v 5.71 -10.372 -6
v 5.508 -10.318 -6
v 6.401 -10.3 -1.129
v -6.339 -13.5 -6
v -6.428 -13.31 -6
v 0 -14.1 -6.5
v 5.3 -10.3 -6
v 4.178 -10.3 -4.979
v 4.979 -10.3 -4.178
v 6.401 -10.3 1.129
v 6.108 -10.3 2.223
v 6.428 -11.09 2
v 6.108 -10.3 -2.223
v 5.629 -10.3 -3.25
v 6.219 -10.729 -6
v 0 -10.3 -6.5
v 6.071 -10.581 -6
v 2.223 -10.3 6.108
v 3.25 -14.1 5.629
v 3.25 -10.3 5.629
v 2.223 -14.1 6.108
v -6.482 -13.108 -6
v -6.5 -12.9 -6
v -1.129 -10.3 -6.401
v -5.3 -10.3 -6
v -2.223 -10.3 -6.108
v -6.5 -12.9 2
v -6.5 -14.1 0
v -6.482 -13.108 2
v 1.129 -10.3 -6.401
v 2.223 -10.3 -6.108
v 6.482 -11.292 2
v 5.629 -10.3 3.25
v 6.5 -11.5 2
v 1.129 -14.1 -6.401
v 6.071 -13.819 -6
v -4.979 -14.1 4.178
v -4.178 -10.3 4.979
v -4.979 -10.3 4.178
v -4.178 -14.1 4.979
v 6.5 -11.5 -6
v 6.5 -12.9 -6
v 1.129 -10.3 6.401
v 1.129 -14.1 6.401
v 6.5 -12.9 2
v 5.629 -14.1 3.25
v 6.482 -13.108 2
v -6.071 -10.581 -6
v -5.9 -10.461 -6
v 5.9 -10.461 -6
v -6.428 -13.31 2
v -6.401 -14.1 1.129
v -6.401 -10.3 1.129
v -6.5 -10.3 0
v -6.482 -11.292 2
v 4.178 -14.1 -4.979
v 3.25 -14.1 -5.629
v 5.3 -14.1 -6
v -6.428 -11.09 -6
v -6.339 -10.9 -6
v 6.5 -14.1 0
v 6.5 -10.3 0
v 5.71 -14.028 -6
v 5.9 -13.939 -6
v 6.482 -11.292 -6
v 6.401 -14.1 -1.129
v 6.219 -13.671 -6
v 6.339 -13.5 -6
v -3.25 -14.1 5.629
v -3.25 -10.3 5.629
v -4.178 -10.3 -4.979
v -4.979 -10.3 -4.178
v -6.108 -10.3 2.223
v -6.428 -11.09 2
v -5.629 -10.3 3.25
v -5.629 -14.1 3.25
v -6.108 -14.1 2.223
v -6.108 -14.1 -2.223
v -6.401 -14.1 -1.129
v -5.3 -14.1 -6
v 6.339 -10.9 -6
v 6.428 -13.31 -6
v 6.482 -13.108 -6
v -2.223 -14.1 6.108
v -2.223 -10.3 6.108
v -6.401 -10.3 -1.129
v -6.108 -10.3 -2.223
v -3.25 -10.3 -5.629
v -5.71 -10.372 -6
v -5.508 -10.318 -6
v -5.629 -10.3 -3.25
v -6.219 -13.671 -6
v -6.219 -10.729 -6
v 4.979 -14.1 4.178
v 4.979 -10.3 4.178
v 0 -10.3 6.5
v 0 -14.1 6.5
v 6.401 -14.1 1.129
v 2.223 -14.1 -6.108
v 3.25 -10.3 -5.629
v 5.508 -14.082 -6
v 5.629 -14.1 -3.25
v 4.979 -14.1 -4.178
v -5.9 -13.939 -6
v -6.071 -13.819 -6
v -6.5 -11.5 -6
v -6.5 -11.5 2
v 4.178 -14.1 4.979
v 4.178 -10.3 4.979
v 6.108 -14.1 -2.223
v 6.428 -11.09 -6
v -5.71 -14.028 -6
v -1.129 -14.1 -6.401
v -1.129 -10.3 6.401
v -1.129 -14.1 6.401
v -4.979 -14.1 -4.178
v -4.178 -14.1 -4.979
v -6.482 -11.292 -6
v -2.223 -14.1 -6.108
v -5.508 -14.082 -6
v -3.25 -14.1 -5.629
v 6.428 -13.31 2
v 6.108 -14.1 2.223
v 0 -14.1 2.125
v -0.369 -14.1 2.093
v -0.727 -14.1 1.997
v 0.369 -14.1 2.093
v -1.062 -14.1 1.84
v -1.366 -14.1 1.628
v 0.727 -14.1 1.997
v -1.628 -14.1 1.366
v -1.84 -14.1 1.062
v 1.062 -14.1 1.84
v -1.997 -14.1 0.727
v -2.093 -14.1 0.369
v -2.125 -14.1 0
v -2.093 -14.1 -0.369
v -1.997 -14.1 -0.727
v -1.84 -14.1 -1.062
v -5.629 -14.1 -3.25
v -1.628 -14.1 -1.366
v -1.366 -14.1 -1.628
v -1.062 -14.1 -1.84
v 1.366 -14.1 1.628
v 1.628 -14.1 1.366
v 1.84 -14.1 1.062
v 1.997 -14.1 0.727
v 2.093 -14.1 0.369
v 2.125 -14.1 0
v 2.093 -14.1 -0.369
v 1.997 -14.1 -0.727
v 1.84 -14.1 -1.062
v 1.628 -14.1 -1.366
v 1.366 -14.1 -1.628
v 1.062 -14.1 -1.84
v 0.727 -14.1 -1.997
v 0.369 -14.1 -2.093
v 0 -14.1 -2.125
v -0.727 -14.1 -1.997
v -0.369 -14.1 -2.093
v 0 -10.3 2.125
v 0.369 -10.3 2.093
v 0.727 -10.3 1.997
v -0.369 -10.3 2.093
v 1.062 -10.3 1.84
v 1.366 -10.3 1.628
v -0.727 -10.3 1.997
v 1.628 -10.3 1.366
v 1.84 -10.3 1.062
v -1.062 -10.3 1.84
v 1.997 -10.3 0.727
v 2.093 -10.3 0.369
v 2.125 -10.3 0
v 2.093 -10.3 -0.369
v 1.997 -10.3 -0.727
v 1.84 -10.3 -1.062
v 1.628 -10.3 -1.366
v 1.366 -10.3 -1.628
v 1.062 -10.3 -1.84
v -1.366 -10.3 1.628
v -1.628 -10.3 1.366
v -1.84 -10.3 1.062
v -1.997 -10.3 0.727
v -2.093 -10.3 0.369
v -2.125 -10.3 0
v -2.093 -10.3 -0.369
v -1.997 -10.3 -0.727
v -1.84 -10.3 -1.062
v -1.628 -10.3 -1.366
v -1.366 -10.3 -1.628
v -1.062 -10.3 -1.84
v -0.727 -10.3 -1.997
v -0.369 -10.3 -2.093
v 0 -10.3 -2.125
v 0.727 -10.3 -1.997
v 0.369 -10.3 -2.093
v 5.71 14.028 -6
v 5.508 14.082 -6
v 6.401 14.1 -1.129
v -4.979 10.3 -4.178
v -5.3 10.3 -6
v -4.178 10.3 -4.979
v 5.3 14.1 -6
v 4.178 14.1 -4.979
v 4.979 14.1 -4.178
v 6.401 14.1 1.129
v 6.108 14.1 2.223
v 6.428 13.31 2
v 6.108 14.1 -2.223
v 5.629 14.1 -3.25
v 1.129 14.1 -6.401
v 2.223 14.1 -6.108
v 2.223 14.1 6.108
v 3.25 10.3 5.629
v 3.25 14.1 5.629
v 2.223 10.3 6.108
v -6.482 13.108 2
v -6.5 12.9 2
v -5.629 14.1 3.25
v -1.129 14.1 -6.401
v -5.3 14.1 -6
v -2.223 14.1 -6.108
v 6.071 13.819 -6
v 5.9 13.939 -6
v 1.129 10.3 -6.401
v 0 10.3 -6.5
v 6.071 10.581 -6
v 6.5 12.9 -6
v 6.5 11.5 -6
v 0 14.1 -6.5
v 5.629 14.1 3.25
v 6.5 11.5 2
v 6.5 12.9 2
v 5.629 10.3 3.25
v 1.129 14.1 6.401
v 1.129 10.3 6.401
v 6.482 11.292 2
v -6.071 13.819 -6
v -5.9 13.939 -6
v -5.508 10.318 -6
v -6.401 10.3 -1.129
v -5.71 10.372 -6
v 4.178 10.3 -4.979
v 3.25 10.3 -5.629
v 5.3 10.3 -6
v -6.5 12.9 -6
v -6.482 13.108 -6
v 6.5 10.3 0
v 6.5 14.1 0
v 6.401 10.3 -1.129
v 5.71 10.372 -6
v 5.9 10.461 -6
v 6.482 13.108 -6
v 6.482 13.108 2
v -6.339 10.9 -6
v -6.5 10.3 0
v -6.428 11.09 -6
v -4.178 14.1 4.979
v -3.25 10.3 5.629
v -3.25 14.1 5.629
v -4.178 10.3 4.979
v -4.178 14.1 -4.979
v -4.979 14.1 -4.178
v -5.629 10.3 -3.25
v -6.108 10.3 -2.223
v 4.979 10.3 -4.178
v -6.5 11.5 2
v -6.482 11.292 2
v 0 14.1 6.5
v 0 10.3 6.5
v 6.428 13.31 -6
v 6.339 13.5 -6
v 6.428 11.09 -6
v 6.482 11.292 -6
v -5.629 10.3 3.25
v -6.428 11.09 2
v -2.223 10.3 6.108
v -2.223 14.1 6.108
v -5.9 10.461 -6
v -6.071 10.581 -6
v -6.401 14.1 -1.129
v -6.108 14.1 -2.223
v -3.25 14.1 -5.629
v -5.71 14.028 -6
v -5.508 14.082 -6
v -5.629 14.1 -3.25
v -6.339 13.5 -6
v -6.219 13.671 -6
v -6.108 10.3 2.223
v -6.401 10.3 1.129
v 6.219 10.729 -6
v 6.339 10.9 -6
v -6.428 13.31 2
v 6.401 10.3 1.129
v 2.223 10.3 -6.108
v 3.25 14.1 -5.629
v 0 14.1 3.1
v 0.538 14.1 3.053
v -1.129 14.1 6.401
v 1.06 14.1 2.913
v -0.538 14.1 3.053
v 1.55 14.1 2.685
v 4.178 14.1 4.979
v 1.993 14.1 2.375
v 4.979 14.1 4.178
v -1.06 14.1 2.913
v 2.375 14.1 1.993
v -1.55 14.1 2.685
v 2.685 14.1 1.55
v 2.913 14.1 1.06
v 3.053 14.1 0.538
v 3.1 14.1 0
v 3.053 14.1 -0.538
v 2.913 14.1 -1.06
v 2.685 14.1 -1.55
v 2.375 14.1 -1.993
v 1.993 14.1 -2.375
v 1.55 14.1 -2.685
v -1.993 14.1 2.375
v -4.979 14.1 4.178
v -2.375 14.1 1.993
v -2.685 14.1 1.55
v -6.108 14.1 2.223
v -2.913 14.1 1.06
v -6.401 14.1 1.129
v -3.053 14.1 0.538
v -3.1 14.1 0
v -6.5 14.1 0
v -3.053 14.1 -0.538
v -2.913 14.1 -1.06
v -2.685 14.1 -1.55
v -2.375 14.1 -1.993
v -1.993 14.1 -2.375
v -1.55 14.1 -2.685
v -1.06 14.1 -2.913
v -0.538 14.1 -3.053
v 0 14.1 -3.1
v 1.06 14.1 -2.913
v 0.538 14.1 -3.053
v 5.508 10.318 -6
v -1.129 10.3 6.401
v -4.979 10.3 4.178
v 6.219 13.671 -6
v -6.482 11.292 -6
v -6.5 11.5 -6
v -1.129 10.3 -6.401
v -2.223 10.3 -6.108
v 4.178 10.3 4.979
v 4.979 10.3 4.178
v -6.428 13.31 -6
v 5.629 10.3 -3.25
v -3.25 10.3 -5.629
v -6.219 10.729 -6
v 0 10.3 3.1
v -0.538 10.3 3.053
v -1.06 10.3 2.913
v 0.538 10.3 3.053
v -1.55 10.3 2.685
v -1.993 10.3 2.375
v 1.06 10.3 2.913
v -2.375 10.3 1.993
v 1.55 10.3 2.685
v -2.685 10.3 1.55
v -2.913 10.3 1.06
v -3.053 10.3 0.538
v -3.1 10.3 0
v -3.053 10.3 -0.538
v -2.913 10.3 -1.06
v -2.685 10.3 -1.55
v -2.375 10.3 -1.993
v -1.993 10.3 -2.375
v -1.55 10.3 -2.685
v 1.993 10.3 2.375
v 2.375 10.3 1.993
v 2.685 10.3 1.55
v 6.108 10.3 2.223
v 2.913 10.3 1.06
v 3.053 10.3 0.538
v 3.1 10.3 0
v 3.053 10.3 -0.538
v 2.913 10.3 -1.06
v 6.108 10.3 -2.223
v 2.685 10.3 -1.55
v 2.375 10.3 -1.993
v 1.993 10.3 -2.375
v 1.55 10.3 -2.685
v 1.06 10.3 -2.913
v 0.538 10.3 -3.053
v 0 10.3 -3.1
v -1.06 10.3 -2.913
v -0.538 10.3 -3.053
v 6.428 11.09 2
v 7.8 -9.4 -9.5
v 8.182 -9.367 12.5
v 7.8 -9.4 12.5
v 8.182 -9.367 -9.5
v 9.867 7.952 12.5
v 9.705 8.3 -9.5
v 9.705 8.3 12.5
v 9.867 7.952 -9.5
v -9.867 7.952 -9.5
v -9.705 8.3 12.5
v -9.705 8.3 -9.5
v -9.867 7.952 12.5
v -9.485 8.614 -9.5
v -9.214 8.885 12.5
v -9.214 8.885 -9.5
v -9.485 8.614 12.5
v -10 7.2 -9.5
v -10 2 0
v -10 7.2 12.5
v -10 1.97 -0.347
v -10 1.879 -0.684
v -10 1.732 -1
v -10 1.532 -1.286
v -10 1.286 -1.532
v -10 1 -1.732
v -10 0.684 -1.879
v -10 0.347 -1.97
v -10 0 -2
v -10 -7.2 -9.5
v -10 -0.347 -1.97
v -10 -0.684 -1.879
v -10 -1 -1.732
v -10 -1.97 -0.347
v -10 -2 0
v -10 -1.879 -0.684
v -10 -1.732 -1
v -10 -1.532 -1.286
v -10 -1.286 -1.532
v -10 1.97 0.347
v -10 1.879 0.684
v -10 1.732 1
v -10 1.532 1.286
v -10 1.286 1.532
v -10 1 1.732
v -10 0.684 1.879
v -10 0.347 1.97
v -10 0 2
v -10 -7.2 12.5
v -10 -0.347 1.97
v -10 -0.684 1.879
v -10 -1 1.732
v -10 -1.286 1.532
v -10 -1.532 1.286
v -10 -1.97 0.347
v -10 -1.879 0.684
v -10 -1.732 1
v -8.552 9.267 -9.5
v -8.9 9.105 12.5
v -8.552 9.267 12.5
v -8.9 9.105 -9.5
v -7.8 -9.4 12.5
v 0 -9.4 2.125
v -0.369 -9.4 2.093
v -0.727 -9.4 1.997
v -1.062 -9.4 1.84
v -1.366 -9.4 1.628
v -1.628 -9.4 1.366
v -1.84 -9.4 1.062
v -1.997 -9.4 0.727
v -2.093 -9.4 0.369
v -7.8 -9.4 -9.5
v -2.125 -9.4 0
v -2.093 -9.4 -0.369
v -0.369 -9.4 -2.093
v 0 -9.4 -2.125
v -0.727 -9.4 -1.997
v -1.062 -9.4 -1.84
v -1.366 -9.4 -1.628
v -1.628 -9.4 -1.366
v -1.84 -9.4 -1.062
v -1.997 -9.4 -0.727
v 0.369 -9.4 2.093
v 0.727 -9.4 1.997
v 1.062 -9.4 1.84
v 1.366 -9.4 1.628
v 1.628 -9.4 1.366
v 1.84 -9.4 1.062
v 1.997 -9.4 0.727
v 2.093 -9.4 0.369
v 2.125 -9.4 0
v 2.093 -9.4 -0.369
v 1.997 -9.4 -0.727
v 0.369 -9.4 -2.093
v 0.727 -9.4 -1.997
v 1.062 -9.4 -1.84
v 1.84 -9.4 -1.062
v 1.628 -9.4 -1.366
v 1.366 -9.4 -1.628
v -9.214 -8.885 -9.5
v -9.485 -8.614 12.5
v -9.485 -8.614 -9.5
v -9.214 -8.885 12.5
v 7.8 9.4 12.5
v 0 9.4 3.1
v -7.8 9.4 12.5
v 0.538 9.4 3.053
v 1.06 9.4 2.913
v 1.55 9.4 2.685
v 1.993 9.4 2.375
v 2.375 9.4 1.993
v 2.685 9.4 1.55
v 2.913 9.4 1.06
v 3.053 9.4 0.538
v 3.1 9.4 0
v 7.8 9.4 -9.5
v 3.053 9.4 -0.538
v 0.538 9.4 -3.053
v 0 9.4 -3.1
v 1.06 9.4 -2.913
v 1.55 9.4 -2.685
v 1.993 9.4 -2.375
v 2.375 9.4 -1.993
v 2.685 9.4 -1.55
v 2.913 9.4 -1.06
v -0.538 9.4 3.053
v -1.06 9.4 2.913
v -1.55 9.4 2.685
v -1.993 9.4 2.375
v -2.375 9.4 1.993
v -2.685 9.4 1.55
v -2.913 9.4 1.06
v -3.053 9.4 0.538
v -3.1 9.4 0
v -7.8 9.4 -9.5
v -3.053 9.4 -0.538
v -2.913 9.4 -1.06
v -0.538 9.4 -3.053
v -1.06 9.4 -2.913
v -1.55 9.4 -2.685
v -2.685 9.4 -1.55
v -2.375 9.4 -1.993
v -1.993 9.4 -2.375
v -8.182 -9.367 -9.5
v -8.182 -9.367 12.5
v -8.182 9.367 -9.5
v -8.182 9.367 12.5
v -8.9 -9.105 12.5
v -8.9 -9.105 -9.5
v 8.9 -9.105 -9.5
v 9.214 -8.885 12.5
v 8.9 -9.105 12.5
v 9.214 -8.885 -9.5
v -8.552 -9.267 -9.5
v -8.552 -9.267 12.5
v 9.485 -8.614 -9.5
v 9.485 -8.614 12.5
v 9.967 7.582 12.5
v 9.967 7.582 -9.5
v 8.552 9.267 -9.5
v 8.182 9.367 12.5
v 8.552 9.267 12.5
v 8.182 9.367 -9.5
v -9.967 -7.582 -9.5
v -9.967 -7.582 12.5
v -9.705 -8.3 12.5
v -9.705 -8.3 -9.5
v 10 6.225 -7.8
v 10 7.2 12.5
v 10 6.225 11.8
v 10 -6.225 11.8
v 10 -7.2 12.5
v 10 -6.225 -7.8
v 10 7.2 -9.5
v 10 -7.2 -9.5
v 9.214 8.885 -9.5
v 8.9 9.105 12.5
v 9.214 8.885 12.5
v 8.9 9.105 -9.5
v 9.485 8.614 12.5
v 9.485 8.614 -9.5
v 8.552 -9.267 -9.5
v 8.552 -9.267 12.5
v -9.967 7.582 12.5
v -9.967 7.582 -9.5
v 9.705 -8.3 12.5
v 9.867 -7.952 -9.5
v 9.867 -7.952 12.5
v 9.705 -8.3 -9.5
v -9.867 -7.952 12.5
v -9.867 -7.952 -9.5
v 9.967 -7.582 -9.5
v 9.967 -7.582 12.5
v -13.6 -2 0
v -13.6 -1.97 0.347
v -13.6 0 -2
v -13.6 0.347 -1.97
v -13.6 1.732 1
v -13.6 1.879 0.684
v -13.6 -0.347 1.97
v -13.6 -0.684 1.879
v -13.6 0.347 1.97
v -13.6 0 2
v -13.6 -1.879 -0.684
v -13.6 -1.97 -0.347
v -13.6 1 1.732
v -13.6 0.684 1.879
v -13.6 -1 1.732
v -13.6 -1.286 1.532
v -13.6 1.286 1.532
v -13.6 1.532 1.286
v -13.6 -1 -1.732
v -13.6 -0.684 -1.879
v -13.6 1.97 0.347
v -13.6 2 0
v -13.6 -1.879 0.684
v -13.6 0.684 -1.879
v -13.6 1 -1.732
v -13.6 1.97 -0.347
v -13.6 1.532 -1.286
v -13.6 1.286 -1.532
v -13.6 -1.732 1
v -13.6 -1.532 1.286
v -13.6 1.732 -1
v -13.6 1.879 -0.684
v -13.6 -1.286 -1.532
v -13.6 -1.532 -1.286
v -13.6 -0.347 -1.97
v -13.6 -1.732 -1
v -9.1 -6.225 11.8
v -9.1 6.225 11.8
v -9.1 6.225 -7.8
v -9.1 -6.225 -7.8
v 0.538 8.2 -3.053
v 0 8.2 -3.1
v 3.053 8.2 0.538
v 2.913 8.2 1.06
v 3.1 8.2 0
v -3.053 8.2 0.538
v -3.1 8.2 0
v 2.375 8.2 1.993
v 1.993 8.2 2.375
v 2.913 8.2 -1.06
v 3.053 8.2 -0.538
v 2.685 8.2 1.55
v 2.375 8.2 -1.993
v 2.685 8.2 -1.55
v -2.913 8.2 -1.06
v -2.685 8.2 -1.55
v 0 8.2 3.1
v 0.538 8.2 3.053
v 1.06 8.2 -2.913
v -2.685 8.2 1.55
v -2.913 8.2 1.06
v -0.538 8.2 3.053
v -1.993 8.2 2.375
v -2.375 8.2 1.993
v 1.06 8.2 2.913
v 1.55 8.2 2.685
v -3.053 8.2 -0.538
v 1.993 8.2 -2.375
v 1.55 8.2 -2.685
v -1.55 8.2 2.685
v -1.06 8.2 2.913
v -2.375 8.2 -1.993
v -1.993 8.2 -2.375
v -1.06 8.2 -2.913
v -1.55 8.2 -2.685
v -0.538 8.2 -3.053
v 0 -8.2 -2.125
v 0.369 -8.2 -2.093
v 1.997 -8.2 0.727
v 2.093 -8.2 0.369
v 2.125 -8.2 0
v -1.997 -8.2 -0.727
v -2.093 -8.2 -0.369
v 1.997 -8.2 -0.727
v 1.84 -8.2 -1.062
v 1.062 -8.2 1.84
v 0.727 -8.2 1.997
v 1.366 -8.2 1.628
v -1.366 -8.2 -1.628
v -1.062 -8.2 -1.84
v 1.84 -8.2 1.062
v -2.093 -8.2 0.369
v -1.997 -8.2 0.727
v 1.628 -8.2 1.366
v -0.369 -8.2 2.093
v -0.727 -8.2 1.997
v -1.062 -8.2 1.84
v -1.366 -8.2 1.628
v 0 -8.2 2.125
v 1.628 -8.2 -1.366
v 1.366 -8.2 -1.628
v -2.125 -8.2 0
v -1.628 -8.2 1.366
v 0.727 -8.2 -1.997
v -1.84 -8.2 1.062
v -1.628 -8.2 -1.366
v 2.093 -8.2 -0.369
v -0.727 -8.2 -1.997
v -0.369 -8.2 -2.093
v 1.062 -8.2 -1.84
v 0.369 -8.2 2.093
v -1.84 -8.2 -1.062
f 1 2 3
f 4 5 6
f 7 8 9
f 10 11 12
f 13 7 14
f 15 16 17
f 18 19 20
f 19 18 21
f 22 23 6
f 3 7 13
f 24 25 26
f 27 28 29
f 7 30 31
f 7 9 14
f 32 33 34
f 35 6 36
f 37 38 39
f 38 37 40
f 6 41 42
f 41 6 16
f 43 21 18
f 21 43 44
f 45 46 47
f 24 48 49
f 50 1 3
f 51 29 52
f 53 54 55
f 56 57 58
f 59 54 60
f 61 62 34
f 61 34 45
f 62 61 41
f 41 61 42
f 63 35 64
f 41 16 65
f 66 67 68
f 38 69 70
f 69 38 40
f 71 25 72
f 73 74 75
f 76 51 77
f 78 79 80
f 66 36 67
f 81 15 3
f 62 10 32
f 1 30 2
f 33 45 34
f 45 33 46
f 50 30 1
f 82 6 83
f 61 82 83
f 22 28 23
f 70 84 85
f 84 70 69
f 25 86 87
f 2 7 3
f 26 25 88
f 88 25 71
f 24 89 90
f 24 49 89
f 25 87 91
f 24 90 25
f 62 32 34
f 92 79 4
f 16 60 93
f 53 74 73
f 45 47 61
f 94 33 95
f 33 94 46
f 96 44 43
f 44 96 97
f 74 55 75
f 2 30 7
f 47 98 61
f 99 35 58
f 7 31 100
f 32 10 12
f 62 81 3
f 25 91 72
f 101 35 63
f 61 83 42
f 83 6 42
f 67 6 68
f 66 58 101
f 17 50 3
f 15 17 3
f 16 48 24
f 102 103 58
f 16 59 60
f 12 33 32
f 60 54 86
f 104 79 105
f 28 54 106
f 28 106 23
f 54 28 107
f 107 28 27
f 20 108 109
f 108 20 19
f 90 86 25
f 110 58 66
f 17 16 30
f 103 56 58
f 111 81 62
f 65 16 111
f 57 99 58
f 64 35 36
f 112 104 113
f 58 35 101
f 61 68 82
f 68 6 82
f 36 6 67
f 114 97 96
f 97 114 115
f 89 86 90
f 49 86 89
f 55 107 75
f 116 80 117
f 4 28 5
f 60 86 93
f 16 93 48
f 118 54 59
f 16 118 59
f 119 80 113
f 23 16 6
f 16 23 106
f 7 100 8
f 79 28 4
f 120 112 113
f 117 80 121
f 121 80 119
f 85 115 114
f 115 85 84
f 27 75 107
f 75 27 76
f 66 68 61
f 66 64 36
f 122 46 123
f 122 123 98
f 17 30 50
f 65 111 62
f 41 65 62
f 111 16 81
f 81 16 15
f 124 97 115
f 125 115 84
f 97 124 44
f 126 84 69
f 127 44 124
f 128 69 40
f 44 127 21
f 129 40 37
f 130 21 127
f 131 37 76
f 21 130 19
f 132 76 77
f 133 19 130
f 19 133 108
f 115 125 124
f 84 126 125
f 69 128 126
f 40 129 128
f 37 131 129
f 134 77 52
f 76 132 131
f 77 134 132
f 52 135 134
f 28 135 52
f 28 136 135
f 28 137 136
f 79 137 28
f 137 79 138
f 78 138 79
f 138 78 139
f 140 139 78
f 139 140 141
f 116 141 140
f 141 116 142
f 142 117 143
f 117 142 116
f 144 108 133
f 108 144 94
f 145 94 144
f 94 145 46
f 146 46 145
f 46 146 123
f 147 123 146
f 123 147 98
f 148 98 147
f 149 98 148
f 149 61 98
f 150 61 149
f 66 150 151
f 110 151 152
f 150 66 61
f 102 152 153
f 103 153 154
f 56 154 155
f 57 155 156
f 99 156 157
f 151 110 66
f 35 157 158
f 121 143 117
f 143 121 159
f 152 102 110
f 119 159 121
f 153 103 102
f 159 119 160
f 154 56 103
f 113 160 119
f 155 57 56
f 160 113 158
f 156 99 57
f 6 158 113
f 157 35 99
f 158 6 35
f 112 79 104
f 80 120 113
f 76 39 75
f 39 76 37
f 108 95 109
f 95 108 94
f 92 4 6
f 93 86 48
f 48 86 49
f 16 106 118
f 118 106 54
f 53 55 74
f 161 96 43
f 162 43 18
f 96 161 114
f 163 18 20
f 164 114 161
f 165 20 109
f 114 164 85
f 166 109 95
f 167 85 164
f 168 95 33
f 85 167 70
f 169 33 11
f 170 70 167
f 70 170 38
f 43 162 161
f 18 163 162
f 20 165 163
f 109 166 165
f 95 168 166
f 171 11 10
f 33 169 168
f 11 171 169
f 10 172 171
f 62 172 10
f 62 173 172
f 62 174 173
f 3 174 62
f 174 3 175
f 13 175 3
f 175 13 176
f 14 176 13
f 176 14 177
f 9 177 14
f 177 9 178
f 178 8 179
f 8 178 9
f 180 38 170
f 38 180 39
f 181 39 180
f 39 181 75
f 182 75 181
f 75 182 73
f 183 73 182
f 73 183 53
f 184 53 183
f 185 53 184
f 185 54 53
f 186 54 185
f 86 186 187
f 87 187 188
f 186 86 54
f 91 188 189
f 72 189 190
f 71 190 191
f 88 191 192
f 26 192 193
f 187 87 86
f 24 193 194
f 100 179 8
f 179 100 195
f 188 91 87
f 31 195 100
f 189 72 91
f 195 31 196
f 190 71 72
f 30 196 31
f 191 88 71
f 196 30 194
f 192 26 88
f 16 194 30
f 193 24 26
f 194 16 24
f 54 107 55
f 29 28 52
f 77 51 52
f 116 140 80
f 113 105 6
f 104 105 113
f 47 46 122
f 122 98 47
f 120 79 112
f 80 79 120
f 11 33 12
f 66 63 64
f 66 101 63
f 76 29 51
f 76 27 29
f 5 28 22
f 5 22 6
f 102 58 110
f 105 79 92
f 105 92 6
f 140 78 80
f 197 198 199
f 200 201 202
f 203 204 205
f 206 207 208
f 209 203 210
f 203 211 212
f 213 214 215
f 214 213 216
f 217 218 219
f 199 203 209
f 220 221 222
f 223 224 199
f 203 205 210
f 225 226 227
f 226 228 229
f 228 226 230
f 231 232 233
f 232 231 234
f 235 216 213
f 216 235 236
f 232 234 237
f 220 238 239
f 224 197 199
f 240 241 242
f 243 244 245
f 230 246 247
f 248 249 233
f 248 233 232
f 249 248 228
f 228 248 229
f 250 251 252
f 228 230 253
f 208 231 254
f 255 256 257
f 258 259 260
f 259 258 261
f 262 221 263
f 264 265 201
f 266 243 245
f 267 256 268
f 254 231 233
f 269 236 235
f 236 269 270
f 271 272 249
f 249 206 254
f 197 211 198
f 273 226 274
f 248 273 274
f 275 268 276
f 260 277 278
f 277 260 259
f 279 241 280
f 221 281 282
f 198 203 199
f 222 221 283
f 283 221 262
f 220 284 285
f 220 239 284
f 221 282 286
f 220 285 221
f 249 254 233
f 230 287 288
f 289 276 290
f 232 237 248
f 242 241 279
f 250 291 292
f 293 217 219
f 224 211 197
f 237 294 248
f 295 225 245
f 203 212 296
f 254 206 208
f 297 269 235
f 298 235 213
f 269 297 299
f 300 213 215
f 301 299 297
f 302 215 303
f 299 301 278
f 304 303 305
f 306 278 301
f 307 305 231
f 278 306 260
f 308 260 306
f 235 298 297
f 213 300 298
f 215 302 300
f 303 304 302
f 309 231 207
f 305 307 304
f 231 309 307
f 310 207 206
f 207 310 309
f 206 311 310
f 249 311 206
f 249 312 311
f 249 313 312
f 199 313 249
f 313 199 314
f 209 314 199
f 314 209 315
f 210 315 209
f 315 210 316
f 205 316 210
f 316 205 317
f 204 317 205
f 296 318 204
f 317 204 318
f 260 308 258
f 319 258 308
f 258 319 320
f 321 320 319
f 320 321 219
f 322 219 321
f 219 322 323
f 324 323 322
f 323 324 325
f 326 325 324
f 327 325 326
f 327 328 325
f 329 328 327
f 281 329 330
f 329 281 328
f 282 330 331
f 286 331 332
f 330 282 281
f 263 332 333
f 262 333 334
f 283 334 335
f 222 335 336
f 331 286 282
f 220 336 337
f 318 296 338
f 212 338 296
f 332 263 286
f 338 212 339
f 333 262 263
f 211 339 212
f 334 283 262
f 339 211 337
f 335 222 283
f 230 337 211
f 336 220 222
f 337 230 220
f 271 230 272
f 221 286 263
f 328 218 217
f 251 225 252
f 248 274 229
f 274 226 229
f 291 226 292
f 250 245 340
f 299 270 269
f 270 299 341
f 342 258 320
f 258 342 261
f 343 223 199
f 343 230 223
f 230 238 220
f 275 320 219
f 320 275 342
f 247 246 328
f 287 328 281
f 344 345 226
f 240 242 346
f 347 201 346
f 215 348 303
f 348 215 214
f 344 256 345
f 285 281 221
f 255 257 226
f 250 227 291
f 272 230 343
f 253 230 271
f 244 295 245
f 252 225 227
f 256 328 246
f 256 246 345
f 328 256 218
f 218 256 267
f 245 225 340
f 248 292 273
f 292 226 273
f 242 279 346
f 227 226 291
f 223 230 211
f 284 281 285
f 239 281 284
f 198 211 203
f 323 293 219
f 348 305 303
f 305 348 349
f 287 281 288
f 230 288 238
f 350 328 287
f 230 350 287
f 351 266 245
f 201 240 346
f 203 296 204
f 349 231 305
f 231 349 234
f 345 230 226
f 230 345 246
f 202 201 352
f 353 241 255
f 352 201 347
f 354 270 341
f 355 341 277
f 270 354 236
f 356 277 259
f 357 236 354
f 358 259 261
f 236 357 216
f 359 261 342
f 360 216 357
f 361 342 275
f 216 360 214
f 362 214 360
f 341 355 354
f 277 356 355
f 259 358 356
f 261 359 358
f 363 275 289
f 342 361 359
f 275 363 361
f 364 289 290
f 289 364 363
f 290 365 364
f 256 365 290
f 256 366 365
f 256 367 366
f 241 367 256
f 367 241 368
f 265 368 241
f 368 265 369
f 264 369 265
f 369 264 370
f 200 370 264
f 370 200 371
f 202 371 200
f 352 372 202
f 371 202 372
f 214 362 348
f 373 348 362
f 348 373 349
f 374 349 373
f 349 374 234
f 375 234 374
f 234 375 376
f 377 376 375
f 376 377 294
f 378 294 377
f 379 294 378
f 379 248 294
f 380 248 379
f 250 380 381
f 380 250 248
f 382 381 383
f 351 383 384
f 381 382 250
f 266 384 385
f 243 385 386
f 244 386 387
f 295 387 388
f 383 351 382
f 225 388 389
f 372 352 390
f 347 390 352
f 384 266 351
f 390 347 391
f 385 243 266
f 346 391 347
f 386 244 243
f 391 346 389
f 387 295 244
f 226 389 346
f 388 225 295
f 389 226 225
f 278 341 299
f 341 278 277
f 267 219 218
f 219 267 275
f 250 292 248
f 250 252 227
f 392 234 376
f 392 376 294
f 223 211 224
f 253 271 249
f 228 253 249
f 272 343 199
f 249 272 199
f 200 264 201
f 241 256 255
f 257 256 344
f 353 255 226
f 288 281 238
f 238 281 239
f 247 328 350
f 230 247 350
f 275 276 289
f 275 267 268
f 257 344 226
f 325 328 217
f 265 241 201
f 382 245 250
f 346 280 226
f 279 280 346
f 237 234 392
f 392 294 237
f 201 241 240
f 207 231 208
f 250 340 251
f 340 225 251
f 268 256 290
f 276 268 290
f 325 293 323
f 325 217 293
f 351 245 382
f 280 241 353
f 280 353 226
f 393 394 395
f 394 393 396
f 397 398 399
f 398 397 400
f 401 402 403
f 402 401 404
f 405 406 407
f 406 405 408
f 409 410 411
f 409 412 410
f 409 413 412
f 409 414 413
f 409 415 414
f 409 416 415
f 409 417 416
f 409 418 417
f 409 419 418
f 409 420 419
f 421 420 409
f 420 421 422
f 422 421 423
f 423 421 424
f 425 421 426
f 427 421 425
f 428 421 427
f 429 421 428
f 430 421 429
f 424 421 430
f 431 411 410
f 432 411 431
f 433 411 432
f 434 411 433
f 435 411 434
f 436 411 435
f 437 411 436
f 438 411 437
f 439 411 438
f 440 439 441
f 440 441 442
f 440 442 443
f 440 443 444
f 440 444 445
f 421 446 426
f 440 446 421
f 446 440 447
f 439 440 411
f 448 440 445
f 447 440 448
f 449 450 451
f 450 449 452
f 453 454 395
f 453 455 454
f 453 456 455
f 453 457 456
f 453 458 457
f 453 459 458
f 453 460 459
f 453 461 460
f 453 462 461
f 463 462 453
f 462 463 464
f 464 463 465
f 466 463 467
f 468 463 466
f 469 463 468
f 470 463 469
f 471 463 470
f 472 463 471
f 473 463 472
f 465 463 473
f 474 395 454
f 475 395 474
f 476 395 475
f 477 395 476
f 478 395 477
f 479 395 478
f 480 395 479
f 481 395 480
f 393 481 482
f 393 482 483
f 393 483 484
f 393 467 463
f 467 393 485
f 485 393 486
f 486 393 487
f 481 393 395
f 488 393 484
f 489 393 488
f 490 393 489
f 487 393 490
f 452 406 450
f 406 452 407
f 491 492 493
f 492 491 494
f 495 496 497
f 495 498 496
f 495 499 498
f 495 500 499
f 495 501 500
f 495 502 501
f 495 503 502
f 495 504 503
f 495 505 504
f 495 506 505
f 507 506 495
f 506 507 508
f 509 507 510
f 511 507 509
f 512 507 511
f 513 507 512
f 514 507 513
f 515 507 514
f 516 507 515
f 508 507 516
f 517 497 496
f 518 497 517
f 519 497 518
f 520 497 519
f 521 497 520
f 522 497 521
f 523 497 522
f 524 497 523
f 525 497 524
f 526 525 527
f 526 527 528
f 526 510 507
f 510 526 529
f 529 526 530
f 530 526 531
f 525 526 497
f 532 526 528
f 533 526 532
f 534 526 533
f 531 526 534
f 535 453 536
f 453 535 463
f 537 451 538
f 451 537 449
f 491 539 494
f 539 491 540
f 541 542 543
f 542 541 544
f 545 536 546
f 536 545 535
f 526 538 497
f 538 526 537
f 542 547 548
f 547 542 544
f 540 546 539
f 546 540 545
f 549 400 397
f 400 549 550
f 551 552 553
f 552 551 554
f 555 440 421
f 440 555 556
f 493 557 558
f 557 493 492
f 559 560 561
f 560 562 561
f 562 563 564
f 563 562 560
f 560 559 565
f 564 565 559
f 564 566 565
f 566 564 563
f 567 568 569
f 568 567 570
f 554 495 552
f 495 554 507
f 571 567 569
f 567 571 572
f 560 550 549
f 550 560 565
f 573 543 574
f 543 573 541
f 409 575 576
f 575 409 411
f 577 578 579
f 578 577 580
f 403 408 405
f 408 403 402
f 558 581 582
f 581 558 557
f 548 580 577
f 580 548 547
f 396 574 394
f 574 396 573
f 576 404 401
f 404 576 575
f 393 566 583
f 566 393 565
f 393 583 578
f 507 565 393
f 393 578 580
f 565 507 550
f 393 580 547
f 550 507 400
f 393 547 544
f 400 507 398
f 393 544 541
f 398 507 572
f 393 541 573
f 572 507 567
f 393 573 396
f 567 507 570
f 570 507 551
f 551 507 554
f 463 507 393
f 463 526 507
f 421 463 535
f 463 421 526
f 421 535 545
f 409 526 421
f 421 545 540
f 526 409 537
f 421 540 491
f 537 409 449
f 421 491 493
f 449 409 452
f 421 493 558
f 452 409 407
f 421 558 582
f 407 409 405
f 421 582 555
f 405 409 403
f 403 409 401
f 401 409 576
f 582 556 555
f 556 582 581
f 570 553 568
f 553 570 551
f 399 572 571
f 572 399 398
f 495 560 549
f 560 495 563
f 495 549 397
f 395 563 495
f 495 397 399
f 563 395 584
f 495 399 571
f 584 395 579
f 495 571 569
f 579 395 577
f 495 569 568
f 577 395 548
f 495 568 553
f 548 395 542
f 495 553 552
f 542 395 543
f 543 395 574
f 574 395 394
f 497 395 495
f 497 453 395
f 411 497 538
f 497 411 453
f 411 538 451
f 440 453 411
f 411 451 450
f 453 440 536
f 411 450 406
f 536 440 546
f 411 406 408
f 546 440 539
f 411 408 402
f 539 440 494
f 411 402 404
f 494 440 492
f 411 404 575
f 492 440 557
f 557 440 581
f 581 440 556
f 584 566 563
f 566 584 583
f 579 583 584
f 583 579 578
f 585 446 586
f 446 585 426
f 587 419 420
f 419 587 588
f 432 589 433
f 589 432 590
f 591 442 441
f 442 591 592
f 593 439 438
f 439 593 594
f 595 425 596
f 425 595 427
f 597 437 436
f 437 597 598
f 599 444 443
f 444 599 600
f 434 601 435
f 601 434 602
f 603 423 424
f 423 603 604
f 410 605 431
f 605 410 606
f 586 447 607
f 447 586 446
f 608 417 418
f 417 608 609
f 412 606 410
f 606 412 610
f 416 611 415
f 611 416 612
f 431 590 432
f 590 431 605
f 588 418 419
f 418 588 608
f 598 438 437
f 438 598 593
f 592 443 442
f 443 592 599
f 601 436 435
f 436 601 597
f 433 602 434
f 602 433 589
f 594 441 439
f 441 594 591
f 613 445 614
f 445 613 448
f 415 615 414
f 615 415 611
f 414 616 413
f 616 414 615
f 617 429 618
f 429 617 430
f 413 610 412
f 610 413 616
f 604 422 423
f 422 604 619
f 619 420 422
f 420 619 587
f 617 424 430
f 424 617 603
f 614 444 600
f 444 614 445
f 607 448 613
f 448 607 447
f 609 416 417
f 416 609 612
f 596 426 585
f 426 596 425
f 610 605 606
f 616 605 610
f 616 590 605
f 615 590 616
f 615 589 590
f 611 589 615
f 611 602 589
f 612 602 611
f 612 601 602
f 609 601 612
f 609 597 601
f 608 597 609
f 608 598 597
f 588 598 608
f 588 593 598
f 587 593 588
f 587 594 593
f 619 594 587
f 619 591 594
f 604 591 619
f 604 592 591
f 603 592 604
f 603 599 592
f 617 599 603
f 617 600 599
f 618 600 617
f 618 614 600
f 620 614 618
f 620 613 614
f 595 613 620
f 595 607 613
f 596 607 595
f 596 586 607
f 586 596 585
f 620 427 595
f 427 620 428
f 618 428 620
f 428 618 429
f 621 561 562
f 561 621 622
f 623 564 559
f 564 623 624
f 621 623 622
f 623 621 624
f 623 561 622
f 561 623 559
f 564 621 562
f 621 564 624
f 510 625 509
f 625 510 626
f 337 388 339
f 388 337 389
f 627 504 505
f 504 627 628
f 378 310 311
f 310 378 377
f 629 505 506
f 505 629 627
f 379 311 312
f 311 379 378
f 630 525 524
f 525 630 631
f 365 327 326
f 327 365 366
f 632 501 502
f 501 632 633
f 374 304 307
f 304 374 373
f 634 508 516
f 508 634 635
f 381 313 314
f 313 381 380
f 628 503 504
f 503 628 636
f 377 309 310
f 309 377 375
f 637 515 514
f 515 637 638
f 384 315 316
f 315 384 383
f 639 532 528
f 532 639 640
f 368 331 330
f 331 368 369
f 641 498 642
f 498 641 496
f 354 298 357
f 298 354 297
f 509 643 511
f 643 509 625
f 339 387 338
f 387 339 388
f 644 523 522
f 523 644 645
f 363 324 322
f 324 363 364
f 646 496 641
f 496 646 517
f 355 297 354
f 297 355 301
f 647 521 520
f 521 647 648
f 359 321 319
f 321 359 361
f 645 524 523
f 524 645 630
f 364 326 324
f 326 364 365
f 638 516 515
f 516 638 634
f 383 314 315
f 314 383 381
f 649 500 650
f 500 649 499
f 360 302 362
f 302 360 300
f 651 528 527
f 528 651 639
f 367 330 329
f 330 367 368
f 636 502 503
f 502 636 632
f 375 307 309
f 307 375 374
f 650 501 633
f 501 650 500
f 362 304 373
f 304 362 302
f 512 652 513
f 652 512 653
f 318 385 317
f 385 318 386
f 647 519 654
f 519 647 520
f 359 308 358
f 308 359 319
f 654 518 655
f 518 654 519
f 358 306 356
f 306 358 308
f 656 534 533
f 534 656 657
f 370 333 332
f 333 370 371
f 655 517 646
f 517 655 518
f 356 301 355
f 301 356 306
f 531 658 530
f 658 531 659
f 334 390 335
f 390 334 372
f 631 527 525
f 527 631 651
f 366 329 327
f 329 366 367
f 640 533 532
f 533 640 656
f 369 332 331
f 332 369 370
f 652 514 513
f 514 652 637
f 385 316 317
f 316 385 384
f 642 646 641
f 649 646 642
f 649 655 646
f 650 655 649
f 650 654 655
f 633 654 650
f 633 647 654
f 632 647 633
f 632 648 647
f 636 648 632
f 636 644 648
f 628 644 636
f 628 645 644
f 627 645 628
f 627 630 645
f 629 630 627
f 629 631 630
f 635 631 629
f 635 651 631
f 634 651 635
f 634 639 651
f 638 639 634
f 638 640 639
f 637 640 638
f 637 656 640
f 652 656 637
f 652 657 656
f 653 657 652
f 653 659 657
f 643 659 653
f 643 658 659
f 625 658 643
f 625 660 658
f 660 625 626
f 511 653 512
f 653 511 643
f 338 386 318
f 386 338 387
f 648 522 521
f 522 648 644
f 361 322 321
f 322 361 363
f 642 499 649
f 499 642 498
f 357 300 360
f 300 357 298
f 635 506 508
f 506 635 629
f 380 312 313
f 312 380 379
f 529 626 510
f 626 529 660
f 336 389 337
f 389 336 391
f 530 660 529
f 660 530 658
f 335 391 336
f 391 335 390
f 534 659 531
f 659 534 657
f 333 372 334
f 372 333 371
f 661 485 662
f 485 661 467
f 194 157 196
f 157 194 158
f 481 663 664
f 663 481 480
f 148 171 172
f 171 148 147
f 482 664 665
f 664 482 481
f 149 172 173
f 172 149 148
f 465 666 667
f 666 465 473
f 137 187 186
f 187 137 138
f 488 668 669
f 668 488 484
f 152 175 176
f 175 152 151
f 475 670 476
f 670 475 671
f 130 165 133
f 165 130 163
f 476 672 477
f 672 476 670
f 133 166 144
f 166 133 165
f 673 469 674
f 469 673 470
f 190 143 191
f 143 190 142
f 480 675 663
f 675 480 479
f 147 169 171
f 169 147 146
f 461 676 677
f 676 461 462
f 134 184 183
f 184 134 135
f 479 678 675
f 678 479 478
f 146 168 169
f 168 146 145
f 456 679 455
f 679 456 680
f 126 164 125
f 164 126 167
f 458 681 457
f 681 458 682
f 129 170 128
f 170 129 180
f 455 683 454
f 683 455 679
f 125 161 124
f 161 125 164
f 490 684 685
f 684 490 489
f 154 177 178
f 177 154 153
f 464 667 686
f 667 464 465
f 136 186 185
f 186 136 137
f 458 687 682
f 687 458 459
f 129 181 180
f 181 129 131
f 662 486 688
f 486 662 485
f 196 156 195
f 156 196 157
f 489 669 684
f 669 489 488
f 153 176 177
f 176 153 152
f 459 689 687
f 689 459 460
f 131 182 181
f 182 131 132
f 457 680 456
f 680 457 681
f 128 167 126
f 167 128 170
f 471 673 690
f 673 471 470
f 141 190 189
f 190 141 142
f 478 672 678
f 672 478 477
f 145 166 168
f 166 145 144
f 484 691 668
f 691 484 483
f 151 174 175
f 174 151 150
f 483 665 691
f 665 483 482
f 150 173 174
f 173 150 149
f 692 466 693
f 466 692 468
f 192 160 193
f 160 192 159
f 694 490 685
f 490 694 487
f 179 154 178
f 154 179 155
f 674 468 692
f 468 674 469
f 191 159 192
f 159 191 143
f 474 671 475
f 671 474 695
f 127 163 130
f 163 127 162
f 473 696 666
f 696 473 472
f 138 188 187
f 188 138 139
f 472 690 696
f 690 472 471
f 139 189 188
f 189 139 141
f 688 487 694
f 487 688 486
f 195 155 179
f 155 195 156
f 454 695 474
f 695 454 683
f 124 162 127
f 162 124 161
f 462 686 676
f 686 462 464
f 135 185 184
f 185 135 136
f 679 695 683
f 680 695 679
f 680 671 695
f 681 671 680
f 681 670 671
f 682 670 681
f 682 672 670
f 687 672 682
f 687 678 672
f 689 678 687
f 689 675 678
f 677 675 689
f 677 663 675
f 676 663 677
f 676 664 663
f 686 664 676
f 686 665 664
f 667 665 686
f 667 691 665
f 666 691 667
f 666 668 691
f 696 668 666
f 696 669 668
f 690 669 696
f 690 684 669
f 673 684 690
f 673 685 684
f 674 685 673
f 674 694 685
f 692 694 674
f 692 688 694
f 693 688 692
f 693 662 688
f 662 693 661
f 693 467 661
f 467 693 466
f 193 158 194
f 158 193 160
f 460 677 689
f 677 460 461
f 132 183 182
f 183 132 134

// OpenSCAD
// file: ../rnv1_params.scad
// RNV1 (Robotic Neural Vector 1) - Master Parametric Mechanical Specification
// Units: millimeters (mm)
// Coordinate Frame: +X Forward, +Y Left, +Z Up (Standing Neutral Pose, Floor = Z=0)

$fn = 36;

// --- FDM 3D Print Engineering Tolerances (0.4mm nozzle, PETG / PLA+) ---
WALL_T       = 2.0;    // Primary structural wall thickness (>= 1.6mm requirement)
RIB_T        = 1.8;    // Structural stiffening rib thickness
CLEARANCE    = 0.25;   // Standard FDM press/slip fit clearance
M2_PILOT_D   = 1.75;   // M2 self-tapping pilot hole diameter
M2_CLEAR_D   = 2.3;    // M2 through clearance hole diameter
PIVOT_BOSS_D = 4.0;    // Dual-shear opposing coaxial pivot pin diameter

// --- MG90S Metal-Gear Micro Servo Envelope (TowerPro/Generic standard) ---
MG90S_L      = 22.8;   // Body length along flange axis
MG90S_W      = 12.2;   // Body width
MG90S_H      = 28.5;   // Total housing height (bottom to top gear dome)
MG90S_FLANGE_L = 32.2; // Mounting ear span
MG90S_HOLE_DX  = 27.6; // Mounting hole center-to-center
MG90S_SHAFT_OFF = 5.9; // Output shaft offset from end of 22.8mm body

// --- SG90 9g Micro Servo Envelope ---
SG90_L       = 22.5;
SG90_W       = 12.0;
SG90_H       = 22.5;

// --- Master Kinematic Skeleton Coordinates (mm, Z from Floor = 0) ---
SOLE_PAD_H   = 2.0;    // 2mm silicone anti-slip pad (1mm recessed)
FOOT_L       = 72.0;   // X: -32mm heel to +40mm toe
FOOT_HEEL_X  = -32.0;
FOOT_TOE_X   = 40.0;
FOOT_W       = 46.0;   // Y width per foot
FOOT_PLATE_H = 6.5;    // Rigid foot sole plate thickness

FOOT_Y_CTR   = 26.0;   // Left=+26mm, Right=-26mm (6mm gap between inner edges!)
HIP_ROLL_Y   = 23.0;   // Left=+23mm, Right=-23mm

Z_ANKLE_ROLL = 18.0;   // Ankle roll axis height
Z_KNEE_PITCH = 62.0;   // Knee pitch axis height  (L_shin = 44.0mm)
Z_HIP_PITCH  = 106.0;  // Hip pitch axis height   (L_thigh = 44.0mm)
Z_HIP_ROLL   = 124.0;  // Hip roll axis height    (dZ = 18.0mm)

L_SHIN       = Z_KNEE_PITCH - Z_ANKLE_ROLL; // 44.0 mm
L_THIGH      = Z_HIP_PITCH - Z_KNEE_PITCH;  // 44.0 mm
L_HIP_CLEVIS = Z_HIP_ROLL - Z_HIP_PITCH;    // 18.0 mm

// --- Torso & Pelvis Envelope ---
TORSO_Z_BOT  = 116.0;
TORSO_Z_TOP  = 184.0;
TORSO_H      = TORSO_Z_TOP - TORSO_Z_BOT;   // 68.0 mm
TORSO_W      = 80.0;   // Y: -40 to +40mm
TORSO_D      = 54.0;   // X: -27 to +27mm

// --- Arms ---
SHOULDER_Y   = 46.0;   // Left=+46mm, Right=-46mm
SHOULDER_Z   = 170.0;
ARM_LEN      = 72.0;   // Shoulder to palm tip

// --- 2-DOF Active Spatial Head ---
Z_HEAD_YAW   = 188.0;  // Pan axis Z
Z_HEAD_PITCH = 204.0;  // Tilt axis Z
HEAD_W       = 58.0;   // Y width
HEAD_D       = 44.0;   // X depth
HEAD_H       = 42.0;   // Z height (Z = 196..238mm -> Total Robot Height = 238mm)
HEAD_Z_CTR   = 217.0;

// --- Utility Rounded Box Module ---
module rbox(size, r=2.0, center=true) {
    sx = size[0]; sy = size[1]; sz = size[2];
    rc = min(r, sx/2 - 0.1, sy/2 - 0.1, sz/2 - 0.1);
    translate(center ? [0,0,0] : [sx/2, sy/2, sz/2])
    hull() {
        for (dx = [-sx/2 + rc, sx/2 - rc])
        for (dy = [-sy/2 + rc, sy/2 - rc])
        for (dz = [-sz/2 + rc, sz/2 - rc])
            translate([dx, dy, dz]) sphere(r=rc, $fn=16);
    }
}

module rbox_xy(size, r=2.5, center=true) {
    sx = size[0]; sy = size[1]; sz = size[2];
    rc = min(r, sx/2 - 0.1, sy/2 - 0.1);
    translate(center ? [0,0,0] : [sx/2, sy/2, sz/2])
    linear_extrude(height=sz, center=true)
    offset(r=rc) offset(r=-rc)
        square([sx, sy], center=true);
}
// main file
// RNV1 Part: Universal 2-DOF Dual-Shear Ankle Clevis (Connects Ankle Pitch Y-axis to Ankle Roll X-axis!)
// Local Origin: Coaxial Ankle Center at (0, 0, 0) [Global Z=18mm]
// Houses Ankle Roll MG90S horizontally along X + dual-shear Ankle Pitch clevis ears along Y
include <../rnv1_params.scad>

module ankle_clevis() {
    difference() {
        union() {
            // Compact Ankle Roll MG90S Housing Block (shaft along +X at Z=0)
            translate([0, 0, 1.5])
                rbox_xy([20.0, 18.8, 22.0], r=2.2, center=true);

            // Rear Opposing Coaxial Ankle Roll Dual-Shear Pivot Boss (X = -10.0 -> -13.6mm)
            translate([-10.0, 0, 0])
                rotate([0, -90, 0])
                    cylinder(d=PIVOT_BOSS_D, h=3.6);

            // Outer Dual-Shear Ankle Pitch Clevis Arms (Y = +-12.2mm, connecting up to leg_link Ankle Pitch MG90S)
            for (sy = [-12.2, 12.2]) {
                hull() {
                    translate([0, sy, -2.0])
                        rbox_xy([13.0, 3.8, 8.0], r=1.2, center=true);
                    translate([0, sy, 0.0])
                        rotate([90, 0, 0])
                            cylinder(d=13.0, h=3.8, center=true);
                }
            }
        }

        // Ankle Roll MG90S Cavity (shaft along +X)
        translate([0.5, 0, 2.0])
            cube([19.2, MG90S_W + CLEARANCE, 19.6], center=true);
        translate([10.0, 0, 0])
            rotate([0, 90, 0])
                cylinder(d=12.4, h=5.0, center=true);

        // Ankle Pitch Dual-Shear Bores (+Y servo horn side, -Y opposing pivot boss)
        translate([0, 12.2, 0])
            rotate([90, 0, 0])
                cylinder(d=6.2, h=8.0, center=true);
        translate([0, -12.2, 0])
            rotate([90, 0, 0])
                cylinder(d=PIVOT_BOSS_D + CLEARANCE, h=8.0, center=true);
    }
}

ankle_clevis();
